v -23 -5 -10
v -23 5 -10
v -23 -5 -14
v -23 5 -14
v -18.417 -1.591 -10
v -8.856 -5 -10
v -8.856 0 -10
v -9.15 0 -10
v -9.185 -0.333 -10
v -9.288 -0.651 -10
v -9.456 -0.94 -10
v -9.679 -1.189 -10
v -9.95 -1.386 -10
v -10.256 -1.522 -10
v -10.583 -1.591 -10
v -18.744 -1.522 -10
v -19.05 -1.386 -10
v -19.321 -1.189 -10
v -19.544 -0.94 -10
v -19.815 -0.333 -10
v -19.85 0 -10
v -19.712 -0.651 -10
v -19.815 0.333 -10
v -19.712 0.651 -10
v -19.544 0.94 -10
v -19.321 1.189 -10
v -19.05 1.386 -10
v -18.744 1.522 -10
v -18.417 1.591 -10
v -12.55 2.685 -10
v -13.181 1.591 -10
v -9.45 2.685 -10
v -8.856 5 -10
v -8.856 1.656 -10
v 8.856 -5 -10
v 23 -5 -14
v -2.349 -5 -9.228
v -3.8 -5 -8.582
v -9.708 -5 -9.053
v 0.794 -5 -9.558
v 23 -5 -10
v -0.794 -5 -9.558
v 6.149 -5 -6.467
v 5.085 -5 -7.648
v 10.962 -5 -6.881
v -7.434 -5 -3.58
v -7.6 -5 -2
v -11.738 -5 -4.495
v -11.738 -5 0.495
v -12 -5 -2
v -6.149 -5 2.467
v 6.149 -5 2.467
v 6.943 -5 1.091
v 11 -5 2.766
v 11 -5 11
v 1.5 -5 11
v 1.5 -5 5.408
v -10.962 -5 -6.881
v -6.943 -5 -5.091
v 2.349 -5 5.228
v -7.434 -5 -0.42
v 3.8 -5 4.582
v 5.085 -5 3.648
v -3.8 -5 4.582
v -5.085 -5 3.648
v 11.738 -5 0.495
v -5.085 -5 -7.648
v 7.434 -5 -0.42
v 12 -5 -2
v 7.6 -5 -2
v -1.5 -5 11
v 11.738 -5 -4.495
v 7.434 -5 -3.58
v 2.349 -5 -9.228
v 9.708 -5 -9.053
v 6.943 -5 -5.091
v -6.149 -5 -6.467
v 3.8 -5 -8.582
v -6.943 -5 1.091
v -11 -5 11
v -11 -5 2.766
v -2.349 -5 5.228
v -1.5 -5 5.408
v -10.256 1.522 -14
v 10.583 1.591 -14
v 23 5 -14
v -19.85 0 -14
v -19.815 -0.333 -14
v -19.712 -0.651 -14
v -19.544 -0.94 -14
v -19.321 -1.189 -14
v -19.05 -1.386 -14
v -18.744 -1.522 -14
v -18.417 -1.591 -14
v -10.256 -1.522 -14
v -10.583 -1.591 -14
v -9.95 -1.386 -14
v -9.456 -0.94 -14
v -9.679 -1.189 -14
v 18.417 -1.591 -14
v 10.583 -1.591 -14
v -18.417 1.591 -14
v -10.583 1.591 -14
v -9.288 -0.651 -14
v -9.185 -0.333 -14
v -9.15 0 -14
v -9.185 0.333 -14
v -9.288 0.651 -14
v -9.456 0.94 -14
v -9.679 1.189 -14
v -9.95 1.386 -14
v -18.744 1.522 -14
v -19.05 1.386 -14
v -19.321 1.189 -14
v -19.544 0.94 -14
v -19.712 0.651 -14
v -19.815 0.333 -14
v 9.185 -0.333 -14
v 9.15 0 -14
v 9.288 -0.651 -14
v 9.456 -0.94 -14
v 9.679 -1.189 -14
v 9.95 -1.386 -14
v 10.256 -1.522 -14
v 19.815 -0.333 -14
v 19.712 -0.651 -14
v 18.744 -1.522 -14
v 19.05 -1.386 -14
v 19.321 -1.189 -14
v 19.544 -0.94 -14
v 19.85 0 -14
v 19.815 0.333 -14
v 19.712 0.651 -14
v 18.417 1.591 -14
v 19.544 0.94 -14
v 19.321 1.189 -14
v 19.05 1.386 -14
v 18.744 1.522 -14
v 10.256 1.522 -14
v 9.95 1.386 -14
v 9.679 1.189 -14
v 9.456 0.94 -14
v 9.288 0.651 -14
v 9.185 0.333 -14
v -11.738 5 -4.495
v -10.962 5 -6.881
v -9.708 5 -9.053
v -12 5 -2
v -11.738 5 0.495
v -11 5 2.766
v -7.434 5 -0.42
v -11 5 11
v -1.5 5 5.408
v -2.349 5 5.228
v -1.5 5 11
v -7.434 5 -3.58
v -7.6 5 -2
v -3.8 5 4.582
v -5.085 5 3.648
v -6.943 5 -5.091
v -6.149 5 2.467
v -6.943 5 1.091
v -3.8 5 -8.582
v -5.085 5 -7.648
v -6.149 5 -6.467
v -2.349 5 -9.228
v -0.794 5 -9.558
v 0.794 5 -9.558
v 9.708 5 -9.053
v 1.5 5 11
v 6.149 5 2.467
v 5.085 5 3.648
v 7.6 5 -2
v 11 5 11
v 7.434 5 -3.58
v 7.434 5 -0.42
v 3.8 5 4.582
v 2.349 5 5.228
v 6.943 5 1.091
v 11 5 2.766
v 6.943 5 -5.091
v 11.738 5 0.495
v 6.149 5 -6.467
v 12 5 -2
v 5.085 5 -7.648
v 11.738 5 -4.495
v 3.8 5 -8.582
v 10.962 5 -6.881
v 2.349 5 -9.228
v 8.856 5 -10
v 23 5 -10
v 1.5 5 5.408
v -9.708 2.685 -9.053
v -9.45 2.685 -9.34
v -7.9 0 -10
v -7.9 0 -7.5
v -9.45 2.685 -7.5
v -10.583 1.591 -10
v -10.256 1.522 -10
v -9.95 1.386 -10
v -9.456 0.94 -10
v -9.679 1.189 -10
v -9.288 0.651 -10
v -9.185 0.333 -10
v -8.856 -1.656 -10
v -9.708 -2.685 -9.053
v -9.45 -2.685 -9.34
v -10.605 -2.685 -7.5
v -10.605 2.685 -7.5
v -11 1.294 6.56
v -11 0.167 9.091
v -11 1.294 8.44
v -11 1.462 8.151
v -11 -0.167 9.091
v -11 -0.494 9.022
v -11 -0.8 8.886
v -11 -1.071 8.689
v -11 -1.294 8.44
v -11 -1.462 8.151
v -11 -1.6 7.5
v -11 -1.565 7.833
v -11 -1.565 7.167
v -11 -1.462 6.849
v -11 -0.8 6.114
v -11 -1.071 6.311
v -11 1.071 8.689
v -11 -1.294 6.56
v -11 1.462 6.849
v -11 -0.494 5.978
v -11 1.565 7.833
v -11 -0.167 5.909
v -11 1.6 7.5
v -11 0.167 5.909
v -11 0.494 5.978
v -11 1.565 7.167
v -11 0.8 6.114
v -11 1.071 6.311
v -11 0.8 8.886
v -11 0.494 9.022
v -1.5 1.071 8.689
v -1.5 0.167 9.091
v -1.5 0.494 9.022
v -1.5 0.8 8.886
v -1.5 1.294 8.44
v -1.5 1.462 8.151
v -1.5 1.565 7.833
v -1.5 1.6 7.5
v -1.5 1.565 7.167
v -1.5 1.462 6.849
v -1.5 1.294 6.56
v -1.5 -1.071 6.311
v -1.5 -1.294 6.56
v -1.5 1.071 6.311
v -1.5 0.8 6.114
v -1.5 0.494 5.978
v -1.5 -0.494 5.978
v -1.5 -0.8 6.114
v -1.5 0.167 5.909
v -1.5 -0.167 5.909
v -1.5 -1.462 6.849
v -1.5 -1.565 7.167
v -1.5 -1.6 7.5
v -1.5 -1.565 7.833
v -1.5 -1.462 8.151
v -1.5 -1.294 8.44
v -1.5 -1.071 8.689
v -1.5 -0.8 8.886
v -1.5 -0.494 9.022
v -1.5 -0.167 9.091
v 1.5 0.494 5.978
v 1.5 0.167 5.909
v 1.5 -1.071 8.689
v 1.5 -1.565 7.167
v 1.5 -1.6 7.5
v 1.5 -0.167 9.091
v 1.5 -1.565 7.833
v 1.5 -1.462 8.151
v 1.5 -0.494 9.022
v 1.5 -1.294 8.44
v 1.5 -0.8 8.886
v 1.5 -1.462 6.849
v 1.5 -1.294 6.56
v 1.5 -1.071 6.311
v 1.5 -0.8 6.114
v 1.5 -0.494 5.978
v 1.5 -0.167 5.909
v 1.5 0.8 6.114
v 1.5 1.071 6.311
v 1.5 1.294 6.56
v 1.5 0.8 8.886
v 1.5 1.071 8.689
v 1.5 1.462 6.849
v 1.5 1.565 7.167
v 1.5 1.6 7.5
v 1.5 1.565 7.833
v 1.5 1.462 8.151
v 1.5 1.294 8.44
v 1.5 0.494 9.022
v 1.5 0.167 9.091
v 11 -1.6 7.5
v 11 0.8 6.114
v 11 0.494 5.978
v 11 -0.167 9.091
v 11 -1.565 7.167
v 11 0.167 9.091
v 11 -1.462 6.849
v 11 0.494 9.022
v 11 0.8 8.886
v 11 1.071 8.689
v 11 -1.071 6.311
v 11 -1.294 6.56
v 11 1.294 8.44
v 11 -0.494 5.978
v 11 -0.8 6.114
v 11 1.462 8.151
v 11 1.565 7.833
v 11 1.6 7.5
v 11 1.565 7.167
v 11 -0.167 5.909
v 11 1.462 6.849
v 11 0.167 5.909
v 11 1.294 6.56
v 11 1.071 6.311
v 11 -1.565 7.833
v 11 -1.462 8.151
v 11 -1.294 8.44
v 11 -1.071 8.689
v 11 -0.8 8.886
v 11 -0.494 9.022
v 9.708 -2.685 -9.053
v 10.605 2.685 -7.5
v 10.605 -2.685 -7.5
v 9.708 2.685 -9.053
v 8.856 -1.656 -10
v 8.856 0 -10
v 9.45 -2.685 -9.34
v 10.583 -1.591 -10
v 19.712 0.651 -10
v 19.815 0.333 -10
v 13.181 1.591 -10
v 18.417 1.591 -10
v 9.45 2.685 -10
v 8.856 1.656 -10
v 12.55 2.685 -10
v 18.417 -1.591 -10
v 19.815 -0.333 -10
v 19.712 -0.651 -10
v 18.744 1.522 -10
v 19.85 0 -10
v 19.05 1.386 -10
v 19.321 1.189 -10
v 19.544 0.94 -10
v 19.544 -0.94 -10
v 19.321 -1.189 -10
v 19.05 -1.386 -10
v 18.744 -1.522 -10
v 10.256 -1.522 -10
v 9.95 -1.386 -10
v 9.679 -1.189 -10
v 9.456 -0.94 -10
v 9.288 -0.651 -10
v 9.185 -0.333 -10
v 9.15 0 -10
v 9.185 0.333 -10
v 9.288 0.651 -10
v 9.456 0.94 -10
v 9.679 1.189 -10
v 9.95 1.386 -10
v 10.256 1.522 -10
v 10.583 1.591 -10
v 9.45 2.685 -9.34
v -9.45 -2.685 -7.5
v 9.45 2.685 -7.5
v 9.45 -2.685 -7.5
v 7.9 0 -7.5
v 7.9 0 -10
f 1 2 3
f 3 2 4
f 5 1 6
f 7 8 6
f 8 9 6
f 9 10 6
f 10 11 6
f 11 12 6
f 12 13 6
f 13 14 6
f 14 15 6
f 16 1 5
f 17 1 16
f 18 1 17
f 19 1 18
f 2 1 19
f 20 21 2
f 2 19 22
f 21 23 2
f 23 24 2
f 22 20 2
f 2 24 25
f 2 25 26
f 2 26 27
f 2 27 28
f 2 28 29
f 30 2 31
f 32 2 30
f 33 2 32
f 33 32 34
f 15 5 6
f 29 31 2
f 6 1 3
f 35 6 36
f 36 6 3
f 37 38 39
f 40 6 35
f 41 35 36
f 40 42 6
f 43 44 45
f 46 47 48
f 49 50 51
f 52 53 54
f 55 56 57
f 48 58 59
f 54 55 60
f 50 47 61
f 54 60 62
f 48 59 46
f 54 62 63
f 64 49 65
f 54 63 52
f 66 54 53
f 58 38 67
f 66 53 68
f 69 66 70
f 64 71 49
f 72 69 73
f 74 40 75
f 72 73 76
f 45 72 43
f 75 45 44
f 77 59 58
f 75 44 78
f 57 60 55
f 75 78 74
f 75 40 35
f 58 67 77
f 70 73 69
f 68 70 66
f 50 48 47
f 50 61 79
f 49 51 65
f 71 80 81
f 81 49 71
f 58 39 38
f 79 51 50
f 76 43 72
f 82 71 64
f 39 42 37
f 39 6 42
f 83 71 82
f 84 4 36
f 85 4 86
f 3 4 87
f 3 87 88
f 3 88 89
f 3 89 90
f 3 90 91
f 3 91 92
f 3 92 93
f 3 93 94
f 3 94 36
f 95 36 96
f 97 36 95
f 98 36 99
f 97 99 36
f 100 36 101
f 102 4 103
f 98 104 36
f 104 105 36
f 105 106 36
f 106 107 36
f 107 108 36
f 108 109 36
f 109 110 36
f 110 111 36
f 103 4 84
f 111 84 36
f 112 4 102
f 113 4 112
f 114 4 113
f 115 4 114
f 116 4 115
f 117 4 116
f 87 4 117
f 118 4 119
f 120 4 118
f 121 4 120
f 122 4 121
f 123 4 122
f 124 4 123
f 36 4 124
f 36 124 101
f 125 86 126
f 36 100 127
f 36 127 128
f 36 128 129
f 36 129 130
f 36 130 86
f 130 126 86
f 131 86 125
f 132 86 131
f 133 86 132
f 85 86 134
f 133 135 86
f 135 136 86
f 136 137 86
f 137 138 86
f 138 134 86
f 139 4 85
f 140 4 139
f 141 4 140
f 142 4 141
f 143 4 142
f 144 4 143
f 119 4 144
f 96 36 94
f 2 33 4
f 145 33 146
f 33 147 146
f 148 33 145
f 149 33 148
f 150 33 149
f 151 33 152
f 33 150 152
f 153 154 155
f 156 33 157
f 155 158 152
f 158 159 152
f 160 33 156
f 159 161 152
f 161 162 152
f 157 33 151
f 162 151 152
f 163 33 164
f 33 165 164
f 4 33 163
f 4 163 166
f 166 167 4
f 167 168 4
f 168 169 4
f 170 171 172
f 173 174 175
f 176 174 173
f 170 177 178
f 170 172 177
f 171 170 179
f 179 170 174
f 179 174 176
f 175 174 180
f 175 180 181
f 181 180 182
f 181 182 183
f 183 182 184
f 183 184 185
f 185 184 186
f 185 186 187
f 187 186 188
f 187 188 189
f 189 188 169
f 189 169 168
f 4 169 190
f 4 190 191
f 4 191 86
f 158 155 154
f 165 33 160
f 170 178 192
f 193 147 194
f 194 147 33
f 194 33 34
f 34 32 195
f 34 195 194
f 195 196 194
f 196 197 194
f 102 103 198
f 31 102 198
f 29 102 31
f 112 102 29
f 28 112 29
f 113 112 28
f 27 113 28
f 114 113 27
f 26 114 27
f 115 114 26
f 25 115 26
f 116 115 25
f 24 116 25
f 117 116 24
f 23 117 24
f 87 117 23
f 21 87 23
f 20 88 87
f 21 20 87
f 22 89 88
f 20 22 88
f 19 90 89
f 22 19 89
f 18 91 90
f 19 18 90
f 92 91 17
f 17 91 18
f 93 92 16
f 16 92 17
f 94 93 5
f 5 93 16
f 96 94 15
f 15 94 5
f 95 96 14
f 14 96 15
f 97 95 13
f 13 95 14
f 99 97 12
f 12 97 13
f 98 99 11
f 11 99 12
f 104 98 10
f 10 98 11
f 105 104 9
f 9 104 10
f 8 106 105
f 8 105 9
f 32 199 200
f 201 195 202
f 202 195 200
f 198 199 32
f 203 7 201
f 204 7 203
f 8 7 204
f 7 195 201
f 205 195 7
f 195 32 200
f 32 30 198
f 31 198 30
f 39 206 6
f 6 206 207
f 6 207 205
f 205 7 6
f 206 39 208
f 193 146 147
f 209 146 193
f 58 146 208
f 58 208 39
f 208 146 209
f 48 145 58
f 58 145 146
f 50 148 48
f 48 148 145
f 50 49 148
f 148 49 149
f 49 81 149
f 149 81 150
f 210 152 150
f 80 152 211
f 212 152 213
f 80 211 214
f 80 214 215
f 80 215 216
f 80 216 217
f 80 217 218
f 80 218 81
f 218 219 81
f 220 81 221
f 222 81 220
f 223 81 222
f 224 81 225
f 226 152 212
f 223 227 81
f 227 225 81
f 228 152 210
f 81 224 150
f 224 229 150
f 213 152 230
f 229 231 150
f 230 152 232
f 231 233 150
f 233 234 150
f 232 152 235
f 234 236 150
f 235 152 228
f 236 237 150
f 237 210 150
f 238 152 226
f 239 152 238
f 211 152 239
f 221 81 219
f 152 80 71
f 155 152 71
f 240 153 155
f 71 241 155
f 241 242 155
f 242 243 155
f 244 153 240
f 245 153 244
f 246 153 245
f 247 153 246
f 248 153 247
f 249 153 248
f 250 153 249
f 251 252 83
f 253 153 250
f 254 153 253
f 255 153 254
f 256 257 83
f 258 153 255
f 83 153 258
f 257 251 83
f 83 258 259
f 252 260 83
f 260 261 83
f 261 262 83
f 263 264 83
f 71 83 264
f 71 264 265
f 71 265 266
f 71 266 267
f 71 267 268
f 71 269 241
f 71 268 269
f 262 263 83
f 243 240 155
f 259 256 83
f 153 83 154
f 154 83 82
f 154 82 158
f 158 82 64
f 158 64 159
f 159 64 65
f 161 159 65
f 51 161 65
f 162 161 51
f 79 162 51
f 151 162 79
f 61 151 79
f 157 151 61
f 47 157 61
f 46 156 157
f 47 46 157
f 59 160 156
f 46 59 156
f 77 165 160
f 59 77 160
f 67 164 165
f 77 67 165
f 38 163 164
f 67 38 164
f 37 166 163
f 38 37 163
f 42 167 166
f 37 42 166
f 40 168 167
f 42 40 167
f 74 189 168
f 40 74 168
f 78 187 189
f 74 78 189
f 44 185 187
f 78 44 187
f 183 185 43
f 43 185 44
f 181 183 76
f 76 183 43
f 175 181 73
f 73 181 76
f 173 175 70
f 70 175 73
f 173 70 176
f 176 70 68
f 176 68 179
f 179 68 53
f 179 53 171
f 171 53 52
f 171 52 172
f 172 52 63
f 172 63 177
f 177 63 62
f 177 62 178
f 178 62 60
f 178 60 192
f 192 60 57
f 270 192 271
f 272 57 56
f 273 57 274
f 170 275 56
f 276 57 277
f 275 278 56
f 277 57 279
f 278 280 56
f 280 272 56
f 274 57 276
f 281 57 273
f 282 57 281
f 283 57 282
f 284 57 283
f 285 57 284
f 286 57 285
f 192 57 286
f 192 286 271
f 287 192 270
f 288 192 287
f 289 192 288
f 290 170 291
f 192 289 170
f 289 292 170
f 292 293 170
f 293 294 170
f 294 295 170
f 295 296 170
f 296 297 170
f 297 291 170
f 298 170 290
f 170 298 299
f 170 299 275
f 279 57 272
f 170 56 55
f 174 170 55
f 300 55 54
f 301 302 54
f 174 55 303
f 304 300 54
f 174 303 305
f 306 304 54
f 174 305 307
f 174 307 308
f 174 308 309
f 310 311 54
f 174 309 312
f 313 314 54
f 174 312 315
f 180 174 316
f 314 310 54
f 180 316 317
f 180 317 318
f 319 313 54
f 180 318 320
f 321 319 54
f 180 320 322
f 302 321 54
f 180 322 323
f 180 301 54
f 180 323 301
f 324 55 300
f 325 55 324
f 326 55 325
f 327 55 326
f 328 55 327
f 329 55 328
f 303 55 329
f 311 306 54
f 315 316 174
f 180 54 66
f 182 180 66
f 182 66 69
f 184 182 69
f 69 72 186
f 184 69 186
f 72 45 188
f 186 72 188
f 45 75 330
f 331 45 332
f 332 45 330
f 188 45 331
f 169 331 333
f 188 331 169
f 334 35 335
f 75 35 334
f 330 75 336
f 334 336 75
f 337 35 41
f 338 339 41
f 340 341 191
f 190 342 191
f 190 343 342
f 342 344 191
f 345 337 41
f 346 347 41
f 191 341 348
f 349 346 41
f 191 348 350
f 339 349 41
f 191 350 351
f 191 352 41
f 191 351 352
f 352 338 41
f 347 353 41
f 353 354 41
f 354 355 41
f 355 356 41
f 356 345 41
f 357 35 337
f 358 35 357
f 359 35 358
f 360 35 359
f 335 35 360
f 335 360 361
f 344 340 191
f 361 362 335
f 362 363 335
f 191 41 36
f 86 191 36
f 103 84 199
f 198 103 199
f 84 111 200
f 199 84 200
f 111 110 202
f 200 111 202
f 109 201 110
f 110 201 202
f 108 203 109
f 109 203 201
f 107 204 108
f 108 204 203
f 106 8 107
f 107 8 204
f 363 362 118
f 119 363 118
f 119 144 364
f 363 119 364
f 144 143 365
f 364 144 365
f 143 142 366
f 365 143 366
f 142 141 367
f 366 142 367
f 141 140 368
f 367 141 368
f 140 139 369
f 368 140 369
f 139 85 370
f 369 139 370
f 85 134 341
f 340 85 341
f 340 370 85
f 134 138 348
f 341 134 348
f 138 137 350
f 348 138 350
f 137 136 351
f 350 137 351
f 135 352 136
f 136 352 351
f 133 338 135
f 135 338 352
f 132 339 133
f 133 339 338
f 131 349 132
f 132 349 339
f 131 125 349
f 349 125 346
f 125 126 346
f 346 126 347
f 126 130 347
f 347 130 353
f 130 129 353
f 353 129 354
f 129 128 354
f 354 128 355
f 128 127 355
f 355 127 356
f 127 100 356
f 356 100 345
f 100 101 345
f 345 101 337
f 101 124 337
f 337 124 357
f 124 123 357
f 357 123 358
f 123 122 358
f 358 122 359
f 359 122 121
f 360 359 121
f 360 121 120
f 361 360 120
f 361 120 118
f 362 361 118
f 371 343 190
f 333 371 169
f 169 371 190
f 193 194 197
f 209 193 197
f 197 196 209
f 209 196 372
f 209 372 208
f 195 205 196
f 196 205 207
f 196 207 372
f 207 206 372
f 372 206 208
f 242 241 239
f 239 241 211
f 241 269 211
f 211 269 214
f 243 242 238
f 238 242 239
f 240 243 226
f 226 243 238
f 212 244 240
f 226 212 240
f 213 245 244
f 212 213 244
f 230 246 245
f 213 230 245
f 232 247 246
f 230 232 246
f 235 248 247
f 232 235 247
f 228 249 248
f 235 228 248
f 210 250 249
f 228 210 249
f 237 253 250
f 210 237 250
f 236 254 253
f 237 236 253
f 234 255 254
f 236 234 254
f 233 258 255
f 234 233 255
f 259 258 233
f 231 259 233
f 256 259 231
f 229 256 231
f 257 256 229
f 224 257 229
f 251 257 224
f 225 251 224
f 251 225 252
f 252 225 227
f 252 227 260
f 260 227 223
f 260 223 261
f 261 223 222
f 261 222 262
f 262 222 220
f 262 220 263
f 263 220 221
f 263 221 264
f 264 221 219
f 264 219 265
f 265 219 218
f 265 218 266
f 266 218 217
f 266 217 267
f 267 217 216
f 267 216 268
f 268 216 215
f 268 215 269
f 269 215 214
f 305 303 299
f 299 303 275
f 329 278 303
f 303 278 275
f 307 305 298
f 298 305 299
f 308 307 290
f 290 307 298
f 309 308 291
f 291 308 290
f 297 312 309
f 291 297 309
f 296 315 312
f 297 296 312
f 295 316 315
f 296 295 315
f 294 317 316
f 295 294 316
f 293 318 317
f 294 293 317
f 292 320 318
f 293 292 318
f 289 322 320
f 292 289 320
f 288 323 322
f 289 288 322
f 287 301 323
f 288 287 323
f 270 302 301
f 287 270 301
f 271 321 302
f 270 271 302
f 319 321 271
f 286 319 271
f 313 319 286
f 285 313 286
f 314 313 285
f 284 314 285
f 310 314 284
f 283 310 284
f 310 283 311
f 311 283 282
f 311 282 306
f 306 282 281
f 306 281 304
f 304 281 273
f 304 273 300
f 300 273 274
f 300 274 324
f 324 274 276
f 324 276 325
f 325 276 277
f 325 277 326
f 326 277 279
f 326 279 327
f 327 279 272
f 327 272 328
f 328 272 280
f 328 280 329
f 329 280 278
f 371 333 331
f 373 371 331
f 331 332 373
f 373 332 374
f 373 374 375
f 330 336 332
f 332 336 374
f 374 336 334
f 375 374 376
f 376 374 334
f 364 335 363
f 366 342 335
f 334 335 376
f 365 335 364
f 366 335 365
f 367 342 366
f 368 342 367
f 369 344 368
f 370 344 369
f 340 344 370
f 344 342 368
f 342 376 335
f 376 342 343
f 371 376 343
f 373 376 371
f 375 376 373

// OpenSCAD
$fs=0.2;
module motorFixSlot()
{

hull()
{
  translate([-3.75,13.9,0])
  rotate(90,[1,0,0]) 
  cylinder(h=8,r=1.6, center=true);
  translate([3.75,13.9,0])
  rotate(90,[1,0,0])
  cylinder(h=8,r=1.6, center=true);
  }
}

module nutTrap()
{
  {
  rotate(90,[1,0,0])
  translate([0,0,-9])
  cylinder(h=2.5,r=3.1,center=true,$fn=6);  
  }
}

module ringSubtractor()
{
translate([0,2,0])
  difference(){
    difference(){
      cylinder(h=12, r=14, center=true);
      cylinder(h=13, r=12, center=true);
    }
    translate([0,10,0])
      cube([46,4,12], center=true);
    translate([0,-8,0])
      cube([40,12,12], center=true);
  }
}

module tmount()
{
  difference(){
    union(){
      // main body around spar hole
      cube([22,22,10], center=true);
      translate([0,2,0])
      cylinder(h=10, r=12, center=true);
      // top rail
      translate([0,12,0])
        cube([46,4,10],center=true);
      // lip
      //translate([24.5,8,0])
      //	cube([3,10,10], center=true);
      //translate([-24.5,8,0])
      //	cube([3,10,10], center=true);
    }
    ringSubtractor();
    union(){
      // notch below spar hole for tightening
      translate([0,-5,0])
        cube([3,15,12], center=true);
      // main hole for spar
      translate([0,2,0])
        cylinder(h=12, r=7.6, center=true);
      // hole for tightening screw
      translate([0,-7.5,0])
        rotate(90,[0,1,0])
          cylinder(h=100, r=1.6, center=true);
		// Slots for motor mount holding screws
		// 3.5mm wide, 36mm center-to-center widest
		// and 22mm centre-to-centre narrowest
		translate([14.5,0,0])
       {
			motorFixSlot();
        translate([-3.5,-.25,0])
        nutTrap();
       }
		translate([-14.5,0,0])
        {
			 motorFixSlot();
        translate([3.5,-.25,0])
        nutTrap();
        }
		}
	}
	
}

// uncomment for vertical print
rotate(270,[1,0,0])
tmount();
